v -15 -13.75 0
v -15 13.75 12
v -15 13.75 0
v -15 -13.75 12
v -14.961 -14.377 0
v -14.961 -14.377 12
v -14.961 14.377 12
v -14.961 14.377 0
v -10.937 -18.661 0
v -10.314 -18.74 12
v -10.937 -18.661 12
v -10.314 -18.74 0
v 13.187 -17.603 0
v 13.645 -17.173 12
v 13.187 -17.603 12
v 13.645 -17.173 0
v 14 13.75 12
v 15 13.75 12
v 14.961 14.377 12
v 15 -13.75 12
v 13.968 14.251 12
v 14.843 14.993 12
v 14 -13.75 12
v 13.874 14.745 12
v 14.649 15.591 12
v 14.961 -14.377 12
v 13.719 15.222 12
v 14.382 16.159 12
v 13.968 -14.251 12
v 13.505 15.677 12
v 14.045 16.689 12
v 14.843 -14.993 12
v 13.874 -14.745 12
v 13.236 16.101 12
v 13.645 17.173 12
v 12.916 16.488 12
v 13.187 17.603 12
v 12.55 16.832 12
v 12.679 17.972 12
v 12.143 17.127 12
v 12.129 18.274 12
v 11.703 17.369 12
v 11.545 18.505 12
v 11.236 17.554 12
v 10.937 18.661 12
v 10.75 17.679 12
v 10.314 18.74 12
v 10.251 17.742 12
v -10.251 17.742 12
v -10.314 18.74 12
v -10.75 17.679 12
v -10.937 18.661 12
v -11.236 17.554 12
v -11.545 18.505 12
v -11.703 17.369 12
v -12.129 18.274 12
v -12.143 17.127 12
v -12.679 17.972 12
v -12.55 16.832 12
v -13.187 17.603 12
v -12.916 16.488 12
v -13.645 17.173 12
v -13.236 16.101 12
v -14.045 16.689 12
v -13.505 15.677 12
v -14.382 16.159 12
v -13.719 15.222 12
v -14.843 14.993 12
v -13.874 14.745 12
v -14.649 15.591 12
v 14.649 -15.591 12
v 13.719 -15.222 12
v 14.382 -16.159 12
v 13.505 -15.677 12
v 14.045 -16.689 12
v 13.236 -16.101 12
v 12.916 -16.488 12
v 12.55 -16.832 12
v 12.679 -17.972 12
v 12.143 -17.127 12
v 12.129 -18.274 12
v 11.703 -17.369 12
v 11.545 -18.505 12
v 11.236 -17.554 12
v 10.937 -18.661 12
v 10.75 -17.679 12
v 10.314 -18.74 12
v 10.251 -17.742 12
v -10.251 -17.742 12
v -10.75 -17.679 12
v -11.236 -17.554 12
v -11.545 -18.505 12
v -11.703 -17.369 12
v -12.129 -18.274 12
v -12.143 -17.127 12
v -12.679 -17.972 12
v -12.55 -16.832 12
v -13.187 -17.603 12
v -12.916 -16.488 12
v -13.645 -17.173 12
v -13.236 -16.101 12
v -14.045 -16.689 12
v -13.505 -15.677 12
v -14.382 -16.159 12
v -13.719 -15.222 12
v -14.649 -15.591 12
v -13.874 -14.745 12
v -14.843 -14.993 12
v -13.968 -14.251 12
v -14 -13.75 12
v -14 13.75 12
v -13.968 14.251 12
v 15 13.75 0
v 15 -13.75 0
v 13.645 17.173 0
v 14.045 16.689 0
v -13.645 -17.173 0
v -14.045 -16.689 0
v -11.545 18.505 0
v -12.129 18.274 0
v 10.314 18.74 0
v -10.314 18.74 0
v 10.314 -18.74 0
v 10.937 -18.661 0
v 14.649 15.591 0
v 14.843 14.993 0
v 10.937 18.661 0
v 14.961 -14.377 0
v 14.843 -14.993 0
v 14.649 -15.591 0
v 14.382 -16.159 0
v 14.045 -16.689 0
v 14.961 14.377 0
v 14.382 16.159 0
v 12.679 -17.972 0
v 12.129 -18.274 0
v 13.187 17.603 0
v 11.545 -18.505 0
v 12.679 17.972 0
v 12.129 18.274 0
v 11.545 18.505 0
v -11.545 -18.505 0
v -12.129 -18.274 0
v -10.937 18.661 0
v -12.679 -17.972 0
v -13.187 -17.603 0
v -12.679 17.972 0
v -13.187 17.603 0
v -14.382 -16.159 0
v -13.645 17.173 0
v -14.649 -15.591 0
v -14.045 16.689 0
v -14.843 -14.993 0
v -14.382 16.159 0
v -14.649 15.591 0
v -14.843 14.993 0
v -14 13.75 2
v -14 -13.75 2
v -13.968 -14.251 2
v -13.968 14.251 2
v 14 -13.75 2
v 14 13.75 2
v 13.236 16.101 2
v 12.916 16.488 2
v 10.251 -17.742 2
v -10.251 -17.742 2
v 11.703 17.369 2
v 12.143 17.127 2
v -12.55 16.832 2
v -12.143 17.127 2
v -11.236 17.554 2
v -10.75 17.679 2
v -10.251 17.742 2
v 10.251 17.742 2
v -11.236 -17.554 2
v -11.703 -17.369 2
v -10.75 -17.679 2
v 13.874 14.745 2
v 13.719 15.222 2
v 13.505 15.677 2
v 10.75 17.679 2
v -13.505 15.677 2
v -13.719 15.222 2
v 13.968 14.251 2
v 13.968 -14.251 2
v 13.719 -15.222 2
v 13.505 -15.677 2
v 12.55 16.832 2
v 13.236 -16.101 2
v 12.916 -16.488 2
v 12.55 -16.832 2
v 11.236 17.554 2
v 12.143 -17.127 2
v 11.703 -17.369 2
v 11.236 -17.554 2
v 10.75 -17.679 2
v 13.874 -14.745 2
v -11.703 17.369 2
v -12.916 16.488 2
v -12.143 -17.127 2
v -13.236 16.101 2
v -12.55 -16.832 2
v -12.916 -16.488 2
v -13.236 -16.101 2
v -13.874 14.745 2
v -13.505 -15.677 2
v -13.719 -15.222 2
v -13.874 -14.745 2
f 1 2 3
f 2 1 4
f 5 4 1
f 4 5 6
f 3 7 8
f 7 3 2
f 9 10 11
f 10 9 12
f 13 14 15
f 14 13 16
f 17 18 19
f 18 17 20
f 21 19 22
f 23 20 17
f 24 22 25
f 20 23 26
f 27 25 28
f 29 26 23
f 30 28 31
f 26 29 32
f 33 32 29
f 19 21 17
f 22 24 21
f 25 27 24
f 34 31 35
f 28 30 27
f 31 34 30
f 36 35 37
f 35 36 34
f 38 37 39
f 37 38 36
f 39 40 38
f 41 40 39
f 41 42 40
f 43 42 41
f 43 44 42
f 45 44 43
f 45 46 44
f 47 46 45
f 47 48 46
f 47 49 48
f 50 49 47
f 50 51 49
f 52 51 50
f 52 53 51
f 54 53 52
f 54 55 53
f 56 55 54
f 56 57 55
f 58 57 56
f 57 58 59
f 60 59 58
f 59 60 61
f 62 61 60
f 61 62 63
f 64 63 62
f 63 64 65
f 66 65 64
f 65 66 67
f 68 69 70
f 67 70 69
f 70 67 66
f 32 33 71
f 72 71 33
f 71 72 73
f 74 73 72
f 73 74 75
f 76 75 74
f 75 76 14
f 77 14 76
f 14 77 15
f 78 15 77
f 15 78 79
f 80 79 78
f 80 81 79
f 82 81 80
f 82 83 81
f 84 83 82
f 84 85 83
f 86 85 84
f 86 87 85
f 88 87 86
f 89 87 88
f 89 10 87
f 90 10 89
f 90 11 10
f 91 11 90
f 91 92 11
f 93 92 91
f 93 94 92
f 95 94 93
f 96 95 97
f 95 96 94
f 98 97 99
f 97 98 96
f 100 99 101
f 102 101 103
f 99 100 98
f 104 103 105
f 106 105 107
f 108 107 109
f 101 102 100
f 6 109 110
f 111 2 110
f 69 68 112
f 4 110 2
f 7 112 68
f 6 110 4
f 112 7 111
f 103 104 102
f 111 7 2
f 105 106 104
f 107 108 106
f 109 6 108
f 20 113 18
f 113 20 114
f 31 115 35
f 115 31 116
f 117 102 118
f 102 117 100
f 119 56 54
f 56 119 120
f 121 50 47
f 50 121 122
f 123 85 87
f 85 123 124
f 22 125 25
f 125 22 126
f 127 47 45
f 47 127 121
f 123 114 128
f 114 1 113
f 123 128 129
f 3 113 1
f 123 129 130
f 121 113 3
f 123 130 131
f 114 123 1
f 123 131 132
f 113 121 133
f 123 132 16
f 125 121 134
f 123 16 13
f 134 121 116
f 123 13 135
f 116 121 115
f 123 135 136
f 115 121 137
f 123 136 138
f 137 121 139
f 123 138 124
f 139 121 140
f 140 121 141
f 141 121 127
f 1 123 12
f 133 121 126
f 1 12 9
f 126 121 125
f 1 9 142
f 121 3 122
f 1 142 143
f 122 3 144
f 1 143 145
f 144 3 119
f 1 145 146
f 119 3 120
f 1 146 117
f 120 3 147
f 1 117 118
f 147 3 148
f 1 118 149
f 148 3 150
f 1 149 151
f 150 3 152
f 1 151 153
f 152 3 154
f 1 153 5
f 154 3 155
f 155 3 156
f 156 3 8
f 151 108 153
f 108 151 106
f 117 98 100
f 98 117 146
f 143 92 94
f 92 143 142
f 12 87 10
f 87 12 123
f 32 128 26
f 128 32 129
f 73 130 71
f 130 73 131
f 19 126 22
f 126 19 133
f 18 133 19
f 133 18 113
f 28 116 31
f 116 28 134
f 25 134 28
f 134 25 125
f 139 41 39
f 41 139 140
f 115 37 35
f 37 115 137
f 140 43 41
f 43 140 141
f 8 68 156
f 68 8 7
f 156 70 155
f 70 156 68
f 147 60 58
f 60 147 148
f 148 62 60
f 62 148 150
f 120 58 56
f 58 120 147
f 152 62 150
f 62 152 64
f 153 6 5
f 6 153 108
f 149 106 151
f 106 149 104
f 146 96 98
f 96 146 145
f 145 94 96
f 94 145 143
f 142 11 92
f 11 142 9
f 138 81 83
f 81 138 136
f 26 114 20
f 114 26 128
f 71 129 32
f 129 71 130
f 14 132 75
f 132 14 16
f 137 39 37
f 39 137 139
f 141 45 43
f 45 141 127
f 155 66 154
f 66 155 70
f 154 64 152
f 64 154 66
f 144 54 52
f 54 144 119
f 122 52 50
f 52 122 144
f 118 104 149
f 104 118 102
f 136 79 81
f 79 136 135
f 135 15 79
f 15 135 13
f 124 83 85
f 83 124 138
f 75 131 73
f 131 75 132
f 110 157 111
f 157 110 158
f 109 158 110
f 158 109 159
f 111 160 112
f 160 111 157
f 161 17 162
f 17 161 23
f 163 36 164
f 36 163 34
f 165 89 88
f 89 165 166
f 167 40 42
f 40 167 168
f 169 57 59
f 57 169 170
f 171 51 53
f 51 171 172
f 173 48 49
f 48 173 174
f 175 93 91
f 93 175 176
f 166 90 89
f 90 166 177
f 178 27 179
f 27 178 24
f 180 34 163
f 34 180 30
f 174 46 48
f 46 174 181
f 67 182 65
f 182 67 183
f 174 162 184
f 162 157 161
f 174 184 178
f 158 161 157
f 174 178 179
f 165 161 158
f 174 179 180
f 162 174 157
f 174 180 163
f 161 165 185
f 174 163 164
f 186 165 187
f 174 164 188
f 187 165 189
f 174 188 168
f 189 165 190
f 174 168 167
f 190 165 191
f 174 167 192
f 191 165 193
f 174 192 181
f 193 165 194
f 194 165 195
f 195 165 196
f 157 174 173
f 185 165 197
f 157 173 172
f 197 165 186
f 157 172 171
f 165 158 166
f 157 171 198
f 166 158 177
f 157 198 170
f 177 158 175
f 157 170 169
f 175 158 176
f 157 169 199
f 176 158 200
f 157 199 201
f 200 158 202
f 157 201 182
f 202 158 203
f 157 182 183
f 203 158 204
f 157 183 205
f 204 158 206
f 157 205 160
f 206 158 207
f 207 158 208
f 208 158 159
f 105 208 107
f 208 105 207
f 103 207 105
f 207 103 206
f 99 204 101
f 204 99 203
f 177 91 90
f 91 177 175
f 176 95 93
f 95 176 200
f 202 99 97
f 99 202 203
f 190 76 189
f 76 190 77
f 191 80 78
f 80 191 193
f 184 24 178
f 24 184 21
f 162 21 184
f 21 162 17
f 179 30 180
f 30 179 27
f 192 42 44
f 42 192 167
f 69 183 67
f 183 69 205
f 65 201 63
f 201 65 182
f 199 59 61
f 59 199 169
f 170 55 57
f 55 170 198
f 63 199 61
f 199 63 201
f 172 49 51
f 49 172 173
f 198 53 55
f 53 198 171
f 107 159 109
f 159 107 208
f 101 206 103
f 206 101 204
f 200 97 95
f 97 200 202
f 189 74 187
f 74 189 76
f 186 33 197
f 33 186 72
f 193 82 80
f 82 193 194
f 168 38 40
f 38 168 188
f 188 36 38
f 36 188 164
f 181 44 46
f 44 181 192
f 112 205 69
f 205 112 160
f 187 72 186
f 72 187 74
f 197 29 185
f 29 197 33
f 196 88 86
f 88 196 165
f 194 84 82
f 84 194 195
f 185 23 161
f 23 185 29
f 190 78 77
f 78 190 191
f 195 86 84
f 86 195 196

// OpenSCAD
$fn = 50;


difference() {
	union() {
		hull() {
			translate(v = [-10.0000000000, 13.7500000000, 0]) {
				cylinder(h = 12, r = 5);
			}
			translate(v = [10.0000000000, 13.7500000000, 0]) {
				cylinder(h = 12, r = 5);
			}
			translate(v = [-10.0000000000, -13.7500000000, 0]) {
				cylinder(h = 12, r = 5);
			}
			translate(v = [10.0000000000, -13.7500000000, 0]) {
				cylinder(h = 12, r = 5);
			}
		}
	}
	union() {
		translate(v = [0, 0, 2]) {
			#hull() {
				translate(v = [-10.0000000000, 13.7500000000, 0]) {
					cylinder(h = 10, r = 4);
				}
				translate(v = [10.0000000000, 13.7500000000, 0]) {
					cylinder(h = 10, r = 4);
				}
				translate(v = [-10.0000000000, -13.7500000000, 0]) {
					cylinder(h = 10, r = 4);
				}
				translate(v = [10.0000000000, -13.7500000000, 0]) {
					cylinder(h = 10, r = 4);
				}
			}
		}
	}
}
